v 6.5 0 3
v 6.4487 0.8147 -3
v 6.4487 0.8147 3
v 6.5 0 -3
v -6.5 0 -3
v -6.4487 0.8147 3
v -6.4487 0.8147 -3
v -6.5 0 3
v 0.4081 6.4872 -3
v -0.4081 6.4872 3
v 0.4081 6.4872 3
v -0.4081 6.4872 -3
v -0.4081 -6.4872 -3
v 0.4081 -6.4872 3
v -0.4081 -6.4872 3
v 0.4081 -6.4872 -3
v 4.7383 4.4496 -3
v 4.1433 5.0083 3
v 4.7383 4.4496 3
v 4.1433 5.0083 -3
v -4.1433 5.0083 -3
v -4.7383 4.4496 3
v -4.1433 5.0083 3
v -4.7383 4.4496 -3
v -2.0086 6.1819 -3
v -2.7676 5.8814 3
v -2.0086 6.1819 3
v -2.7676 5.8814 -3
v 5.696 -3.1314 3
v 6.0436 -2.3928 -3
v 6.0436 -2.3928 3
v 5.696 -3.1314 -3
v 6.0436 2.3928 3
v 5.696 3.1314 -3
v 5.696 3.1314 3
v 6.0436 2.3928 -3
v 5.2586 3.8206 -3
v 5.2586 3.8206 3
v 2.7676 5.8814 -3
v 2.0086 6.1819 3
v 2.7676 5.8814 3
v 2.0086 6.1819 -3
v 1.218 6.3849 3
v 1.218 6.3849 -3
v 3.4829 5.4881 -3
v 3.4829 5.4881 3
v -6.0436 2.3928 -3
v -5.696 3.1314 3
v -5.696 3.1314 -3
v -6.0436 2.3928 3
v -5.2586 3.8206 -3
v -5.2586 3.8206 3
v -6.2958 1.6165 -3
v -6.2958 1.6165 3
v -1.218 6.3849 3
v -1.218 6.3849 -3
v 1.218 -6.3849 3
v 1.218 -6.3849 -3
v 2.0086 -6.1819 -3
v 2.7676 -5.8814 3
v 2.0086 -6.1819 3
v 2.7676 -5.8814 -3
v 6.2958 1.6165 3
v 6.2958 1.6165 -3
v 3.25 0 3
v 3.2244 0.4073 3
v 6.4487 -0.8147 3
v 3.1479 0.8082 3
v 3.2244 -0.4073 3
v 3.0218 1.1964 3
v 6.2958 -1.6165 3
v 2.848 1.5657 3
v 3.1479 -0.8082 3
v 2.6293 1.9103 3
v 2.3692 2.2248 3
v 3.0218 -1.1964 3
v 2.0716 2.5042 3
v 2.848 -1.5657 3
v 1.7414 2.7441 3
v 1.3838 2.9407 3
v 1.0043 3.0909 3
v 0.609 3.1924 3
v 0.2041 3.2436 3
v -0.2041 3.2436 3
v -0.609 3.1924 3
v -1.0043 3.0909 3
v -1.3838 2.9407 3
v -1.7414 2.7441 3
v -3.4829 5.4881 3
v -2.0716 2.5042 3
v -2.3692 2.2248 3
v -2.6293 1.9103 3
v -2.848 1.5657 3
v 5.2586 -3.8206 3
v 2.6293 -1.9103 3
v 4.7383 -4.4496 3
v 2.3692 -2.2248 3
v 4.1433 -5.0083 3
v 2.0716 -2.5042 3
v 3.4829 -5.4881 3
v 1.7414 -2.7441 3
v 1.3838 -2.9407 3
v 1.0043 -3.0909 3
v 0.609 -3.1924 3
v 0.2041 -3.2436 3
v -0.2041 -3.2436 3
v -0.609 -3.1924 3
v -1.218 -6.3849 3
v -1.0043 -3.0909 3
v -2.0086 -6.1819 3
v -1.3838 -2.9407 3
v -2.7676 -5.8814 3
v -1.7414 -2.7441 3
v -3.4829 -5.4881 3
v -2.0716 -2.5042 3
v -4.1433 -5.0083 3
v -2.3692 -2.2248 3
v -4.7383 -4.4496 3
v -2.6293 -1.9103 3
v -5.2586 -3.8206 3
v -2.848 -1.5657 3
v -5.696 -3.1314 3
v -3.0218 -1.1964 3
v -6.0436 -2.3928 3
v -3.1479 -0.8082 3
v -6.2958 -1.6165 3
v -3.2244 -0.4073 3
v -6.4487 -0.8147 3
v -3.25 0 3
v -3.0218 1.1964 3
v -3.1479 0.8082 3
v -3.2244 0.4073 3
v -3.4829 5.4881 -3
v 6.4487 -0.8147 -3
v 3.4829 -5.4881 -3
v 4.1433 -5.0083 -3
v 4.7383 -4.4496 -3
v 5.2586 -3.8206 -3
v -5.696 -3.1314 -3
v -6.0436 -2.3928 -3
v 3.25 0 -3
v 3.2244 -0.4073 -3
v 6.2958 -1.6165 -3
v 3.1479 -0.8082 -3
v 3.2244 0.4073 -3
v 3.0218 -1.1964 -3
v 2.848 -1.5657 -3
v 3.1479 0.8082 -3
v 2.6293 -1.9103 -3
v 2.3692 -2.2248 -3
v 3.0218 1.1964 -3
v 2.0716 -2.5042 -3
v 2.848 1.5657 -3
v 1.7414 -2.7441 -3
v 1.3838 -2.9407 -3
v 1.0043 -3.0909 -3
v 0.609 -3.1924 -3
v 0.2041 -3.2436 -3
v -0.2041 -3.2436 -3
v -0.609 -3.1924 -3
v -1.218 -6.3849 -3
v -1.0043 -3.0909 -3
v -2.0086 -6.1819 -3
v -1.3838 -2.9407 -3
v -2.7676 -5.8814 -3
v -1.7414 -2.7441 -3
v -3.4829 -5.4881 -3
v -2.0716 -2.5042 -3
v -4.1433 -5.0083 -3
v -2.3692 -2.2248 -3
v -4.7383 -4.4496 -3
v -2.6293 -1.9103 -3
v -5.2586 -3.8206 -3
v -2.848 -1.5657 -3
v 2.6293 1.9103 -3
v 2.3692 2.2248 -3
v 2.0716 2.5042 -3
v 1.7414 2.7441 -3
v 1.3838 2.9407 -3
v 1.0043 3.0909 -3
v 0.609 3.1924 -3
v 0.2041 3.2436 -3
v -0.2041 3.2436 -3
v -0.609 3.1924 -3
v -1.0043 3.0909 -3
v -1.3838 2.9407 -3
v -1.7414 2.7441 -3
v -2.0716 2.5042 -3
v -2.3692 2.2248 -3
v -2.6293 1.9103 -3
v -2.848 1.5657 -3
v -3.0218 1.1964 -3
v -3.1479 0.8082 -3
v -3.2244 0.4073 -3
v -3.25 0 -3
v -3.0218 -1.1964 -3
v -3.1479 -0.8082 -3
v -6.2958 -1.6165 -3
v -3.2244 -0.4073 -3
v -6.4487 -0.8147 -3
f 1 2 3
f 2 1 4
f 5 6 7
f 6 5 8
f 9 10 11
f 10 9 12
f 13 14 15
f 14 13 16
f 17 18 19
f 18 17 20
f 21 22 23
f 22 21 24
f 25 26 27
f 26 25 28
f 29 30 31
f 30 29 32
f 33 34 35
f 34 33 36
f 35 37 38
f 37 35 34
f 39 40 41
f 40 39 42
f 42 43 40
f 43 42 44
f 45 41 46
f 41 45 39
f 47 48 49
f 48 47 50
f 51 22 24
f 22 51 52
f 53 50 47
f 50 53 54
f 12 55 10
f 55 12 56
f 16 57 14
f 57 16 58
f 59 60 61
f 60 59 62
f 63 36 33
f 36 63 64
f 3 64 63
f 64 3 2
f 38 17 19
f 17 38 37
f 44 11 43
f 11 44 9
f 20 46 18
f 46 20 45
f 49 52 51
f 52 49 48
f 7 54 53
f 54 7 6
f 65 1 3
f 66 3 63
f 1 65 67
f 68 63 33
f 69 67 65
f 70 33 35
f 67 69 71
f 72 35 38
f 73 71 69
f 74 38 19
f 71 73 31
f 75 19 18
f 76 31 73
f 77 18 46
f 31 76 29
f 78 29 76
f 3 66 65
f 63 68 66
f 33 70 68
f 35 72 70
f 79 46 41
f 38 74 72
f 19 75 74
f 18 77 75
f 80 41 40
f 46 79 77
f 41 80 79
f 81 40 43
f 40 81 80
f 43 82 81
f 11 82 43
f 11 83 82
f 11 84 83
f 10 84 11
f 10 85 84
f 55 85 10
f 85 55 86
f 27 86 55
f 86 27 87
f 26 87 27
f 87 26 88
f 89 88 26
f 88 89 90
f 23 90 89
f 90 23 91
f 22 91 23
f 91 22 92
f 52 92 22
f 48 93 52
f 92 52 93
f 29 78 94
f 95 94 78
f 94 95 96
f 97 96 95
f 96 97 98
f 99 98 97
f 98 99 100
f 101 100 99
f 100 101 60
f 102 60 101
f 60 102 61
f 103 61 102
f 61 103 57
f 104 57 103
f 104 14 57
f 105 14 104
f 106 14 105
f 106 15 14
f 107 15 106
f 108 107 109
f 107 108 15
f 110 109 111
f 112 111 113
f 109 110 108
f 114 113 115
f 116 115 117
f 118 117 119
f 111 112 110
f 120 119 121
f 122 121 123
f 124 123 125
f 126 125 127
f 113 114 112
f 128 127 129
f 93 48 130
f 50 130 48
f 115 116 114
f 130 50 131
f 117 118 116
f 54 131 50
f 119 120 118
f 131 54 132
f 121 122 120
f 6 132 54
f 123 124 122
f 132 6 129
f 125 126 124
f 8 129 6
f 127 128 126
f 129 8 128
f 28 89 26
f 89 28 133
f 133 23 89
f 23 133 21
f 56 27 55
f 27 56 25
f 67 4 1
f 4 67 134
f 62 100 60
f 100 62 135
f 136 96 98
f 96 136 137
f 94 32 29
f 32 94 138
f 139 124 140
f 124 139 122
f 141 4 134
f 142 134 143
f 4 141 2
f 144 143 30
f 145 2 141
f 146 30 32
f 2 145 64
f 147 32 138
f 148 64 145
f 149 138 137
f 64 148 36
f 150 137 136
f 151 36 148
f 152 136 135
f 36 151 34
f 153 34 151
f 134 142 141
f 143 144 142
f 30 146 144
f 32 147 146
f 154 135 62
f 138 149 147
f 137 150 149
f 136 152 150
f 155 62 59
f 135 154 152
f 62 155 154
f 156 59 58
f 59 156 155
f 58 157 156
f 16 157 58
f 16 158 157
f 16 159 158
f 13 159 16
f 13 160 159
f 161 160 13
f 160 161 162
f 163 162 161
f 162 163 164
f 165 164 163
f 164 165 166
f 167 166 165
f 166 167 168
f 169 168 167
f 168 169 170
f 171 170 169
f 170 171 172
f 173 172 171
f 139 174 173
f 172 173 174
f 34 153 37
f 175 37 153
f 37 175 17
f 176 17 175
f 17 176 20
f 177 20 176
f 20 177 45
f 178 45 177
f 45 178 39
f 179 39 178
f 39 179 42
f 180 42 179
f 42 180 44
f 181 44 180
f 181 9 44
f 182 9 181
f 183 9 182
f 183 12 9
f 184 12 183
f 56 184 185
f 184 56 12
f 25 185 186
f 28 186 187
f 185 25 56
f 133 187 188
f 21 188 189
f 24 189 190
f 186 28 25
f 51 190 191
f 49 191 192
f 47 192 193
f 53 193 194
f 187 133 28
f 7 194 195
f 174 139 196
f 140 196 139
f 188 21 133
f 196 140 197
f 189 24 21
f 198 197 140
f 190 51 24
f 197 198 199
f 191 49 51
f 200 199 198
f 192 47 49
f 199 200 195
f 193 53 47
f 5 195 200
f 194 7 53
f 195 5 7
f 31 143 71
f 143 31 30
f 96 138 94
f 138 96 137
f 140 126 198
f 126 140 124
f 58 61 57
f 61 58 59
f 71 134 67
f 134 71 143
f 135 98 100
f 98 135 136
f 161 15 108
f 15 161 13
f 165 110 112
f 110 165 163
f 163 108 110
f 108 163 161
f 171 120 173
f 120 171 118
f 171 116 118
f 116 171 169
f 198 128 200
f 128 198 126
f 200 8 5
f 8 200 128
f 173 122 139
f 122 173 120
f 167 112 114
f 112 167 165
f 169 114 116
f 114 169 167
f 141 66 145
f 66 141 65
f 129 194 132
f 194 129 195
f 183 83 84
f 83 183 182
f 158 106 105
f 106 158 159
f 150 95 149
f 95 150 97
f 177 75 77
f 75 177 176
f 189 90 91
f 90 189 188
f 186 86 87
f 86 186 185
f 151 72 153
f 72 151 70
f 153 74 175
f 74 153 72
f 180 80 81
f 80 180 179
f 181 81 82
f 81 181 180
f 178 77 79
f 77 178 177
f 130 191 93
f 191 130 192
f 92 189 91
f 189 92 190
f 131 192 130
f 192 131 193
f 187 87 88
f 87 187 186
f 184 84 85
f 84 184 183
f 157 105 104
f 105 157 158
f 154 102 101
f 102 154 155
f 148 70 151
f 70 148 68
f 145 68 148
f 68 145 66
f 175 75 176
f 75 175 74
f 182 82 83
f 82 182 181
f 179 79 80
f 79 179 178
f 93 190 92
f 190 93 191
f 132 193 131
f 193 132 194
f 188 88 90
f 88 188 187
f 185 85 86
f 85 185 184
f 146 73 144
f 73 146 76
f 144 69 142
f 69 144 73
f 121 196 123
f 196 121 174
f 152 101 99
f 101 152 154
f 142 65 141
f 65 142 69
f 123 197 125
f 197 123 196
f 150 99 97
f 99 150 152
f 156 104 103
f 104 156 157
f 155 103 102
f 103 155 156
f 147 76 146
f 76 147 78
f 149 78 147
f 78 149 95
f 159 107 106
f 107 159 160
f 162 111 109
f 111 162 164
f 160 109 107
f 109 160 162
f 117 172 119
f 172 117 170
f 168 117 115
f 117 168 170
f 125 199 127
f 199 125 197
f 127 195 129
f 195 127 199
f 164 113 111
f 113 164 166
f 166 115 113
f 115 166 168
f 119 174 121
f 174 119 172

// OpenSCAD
$fn = 50;


difference() {
	union() {
		translate(v = [0, 0, -3.0000000000]) {
			cylinder(h = 6, r = 6.5000000000);
		}
	}
	union() {
		translate(v = [0, 0, -100.0000000000]) {
			cylinder(h = 200, r = 3.2500000000);
		}
	}
}
